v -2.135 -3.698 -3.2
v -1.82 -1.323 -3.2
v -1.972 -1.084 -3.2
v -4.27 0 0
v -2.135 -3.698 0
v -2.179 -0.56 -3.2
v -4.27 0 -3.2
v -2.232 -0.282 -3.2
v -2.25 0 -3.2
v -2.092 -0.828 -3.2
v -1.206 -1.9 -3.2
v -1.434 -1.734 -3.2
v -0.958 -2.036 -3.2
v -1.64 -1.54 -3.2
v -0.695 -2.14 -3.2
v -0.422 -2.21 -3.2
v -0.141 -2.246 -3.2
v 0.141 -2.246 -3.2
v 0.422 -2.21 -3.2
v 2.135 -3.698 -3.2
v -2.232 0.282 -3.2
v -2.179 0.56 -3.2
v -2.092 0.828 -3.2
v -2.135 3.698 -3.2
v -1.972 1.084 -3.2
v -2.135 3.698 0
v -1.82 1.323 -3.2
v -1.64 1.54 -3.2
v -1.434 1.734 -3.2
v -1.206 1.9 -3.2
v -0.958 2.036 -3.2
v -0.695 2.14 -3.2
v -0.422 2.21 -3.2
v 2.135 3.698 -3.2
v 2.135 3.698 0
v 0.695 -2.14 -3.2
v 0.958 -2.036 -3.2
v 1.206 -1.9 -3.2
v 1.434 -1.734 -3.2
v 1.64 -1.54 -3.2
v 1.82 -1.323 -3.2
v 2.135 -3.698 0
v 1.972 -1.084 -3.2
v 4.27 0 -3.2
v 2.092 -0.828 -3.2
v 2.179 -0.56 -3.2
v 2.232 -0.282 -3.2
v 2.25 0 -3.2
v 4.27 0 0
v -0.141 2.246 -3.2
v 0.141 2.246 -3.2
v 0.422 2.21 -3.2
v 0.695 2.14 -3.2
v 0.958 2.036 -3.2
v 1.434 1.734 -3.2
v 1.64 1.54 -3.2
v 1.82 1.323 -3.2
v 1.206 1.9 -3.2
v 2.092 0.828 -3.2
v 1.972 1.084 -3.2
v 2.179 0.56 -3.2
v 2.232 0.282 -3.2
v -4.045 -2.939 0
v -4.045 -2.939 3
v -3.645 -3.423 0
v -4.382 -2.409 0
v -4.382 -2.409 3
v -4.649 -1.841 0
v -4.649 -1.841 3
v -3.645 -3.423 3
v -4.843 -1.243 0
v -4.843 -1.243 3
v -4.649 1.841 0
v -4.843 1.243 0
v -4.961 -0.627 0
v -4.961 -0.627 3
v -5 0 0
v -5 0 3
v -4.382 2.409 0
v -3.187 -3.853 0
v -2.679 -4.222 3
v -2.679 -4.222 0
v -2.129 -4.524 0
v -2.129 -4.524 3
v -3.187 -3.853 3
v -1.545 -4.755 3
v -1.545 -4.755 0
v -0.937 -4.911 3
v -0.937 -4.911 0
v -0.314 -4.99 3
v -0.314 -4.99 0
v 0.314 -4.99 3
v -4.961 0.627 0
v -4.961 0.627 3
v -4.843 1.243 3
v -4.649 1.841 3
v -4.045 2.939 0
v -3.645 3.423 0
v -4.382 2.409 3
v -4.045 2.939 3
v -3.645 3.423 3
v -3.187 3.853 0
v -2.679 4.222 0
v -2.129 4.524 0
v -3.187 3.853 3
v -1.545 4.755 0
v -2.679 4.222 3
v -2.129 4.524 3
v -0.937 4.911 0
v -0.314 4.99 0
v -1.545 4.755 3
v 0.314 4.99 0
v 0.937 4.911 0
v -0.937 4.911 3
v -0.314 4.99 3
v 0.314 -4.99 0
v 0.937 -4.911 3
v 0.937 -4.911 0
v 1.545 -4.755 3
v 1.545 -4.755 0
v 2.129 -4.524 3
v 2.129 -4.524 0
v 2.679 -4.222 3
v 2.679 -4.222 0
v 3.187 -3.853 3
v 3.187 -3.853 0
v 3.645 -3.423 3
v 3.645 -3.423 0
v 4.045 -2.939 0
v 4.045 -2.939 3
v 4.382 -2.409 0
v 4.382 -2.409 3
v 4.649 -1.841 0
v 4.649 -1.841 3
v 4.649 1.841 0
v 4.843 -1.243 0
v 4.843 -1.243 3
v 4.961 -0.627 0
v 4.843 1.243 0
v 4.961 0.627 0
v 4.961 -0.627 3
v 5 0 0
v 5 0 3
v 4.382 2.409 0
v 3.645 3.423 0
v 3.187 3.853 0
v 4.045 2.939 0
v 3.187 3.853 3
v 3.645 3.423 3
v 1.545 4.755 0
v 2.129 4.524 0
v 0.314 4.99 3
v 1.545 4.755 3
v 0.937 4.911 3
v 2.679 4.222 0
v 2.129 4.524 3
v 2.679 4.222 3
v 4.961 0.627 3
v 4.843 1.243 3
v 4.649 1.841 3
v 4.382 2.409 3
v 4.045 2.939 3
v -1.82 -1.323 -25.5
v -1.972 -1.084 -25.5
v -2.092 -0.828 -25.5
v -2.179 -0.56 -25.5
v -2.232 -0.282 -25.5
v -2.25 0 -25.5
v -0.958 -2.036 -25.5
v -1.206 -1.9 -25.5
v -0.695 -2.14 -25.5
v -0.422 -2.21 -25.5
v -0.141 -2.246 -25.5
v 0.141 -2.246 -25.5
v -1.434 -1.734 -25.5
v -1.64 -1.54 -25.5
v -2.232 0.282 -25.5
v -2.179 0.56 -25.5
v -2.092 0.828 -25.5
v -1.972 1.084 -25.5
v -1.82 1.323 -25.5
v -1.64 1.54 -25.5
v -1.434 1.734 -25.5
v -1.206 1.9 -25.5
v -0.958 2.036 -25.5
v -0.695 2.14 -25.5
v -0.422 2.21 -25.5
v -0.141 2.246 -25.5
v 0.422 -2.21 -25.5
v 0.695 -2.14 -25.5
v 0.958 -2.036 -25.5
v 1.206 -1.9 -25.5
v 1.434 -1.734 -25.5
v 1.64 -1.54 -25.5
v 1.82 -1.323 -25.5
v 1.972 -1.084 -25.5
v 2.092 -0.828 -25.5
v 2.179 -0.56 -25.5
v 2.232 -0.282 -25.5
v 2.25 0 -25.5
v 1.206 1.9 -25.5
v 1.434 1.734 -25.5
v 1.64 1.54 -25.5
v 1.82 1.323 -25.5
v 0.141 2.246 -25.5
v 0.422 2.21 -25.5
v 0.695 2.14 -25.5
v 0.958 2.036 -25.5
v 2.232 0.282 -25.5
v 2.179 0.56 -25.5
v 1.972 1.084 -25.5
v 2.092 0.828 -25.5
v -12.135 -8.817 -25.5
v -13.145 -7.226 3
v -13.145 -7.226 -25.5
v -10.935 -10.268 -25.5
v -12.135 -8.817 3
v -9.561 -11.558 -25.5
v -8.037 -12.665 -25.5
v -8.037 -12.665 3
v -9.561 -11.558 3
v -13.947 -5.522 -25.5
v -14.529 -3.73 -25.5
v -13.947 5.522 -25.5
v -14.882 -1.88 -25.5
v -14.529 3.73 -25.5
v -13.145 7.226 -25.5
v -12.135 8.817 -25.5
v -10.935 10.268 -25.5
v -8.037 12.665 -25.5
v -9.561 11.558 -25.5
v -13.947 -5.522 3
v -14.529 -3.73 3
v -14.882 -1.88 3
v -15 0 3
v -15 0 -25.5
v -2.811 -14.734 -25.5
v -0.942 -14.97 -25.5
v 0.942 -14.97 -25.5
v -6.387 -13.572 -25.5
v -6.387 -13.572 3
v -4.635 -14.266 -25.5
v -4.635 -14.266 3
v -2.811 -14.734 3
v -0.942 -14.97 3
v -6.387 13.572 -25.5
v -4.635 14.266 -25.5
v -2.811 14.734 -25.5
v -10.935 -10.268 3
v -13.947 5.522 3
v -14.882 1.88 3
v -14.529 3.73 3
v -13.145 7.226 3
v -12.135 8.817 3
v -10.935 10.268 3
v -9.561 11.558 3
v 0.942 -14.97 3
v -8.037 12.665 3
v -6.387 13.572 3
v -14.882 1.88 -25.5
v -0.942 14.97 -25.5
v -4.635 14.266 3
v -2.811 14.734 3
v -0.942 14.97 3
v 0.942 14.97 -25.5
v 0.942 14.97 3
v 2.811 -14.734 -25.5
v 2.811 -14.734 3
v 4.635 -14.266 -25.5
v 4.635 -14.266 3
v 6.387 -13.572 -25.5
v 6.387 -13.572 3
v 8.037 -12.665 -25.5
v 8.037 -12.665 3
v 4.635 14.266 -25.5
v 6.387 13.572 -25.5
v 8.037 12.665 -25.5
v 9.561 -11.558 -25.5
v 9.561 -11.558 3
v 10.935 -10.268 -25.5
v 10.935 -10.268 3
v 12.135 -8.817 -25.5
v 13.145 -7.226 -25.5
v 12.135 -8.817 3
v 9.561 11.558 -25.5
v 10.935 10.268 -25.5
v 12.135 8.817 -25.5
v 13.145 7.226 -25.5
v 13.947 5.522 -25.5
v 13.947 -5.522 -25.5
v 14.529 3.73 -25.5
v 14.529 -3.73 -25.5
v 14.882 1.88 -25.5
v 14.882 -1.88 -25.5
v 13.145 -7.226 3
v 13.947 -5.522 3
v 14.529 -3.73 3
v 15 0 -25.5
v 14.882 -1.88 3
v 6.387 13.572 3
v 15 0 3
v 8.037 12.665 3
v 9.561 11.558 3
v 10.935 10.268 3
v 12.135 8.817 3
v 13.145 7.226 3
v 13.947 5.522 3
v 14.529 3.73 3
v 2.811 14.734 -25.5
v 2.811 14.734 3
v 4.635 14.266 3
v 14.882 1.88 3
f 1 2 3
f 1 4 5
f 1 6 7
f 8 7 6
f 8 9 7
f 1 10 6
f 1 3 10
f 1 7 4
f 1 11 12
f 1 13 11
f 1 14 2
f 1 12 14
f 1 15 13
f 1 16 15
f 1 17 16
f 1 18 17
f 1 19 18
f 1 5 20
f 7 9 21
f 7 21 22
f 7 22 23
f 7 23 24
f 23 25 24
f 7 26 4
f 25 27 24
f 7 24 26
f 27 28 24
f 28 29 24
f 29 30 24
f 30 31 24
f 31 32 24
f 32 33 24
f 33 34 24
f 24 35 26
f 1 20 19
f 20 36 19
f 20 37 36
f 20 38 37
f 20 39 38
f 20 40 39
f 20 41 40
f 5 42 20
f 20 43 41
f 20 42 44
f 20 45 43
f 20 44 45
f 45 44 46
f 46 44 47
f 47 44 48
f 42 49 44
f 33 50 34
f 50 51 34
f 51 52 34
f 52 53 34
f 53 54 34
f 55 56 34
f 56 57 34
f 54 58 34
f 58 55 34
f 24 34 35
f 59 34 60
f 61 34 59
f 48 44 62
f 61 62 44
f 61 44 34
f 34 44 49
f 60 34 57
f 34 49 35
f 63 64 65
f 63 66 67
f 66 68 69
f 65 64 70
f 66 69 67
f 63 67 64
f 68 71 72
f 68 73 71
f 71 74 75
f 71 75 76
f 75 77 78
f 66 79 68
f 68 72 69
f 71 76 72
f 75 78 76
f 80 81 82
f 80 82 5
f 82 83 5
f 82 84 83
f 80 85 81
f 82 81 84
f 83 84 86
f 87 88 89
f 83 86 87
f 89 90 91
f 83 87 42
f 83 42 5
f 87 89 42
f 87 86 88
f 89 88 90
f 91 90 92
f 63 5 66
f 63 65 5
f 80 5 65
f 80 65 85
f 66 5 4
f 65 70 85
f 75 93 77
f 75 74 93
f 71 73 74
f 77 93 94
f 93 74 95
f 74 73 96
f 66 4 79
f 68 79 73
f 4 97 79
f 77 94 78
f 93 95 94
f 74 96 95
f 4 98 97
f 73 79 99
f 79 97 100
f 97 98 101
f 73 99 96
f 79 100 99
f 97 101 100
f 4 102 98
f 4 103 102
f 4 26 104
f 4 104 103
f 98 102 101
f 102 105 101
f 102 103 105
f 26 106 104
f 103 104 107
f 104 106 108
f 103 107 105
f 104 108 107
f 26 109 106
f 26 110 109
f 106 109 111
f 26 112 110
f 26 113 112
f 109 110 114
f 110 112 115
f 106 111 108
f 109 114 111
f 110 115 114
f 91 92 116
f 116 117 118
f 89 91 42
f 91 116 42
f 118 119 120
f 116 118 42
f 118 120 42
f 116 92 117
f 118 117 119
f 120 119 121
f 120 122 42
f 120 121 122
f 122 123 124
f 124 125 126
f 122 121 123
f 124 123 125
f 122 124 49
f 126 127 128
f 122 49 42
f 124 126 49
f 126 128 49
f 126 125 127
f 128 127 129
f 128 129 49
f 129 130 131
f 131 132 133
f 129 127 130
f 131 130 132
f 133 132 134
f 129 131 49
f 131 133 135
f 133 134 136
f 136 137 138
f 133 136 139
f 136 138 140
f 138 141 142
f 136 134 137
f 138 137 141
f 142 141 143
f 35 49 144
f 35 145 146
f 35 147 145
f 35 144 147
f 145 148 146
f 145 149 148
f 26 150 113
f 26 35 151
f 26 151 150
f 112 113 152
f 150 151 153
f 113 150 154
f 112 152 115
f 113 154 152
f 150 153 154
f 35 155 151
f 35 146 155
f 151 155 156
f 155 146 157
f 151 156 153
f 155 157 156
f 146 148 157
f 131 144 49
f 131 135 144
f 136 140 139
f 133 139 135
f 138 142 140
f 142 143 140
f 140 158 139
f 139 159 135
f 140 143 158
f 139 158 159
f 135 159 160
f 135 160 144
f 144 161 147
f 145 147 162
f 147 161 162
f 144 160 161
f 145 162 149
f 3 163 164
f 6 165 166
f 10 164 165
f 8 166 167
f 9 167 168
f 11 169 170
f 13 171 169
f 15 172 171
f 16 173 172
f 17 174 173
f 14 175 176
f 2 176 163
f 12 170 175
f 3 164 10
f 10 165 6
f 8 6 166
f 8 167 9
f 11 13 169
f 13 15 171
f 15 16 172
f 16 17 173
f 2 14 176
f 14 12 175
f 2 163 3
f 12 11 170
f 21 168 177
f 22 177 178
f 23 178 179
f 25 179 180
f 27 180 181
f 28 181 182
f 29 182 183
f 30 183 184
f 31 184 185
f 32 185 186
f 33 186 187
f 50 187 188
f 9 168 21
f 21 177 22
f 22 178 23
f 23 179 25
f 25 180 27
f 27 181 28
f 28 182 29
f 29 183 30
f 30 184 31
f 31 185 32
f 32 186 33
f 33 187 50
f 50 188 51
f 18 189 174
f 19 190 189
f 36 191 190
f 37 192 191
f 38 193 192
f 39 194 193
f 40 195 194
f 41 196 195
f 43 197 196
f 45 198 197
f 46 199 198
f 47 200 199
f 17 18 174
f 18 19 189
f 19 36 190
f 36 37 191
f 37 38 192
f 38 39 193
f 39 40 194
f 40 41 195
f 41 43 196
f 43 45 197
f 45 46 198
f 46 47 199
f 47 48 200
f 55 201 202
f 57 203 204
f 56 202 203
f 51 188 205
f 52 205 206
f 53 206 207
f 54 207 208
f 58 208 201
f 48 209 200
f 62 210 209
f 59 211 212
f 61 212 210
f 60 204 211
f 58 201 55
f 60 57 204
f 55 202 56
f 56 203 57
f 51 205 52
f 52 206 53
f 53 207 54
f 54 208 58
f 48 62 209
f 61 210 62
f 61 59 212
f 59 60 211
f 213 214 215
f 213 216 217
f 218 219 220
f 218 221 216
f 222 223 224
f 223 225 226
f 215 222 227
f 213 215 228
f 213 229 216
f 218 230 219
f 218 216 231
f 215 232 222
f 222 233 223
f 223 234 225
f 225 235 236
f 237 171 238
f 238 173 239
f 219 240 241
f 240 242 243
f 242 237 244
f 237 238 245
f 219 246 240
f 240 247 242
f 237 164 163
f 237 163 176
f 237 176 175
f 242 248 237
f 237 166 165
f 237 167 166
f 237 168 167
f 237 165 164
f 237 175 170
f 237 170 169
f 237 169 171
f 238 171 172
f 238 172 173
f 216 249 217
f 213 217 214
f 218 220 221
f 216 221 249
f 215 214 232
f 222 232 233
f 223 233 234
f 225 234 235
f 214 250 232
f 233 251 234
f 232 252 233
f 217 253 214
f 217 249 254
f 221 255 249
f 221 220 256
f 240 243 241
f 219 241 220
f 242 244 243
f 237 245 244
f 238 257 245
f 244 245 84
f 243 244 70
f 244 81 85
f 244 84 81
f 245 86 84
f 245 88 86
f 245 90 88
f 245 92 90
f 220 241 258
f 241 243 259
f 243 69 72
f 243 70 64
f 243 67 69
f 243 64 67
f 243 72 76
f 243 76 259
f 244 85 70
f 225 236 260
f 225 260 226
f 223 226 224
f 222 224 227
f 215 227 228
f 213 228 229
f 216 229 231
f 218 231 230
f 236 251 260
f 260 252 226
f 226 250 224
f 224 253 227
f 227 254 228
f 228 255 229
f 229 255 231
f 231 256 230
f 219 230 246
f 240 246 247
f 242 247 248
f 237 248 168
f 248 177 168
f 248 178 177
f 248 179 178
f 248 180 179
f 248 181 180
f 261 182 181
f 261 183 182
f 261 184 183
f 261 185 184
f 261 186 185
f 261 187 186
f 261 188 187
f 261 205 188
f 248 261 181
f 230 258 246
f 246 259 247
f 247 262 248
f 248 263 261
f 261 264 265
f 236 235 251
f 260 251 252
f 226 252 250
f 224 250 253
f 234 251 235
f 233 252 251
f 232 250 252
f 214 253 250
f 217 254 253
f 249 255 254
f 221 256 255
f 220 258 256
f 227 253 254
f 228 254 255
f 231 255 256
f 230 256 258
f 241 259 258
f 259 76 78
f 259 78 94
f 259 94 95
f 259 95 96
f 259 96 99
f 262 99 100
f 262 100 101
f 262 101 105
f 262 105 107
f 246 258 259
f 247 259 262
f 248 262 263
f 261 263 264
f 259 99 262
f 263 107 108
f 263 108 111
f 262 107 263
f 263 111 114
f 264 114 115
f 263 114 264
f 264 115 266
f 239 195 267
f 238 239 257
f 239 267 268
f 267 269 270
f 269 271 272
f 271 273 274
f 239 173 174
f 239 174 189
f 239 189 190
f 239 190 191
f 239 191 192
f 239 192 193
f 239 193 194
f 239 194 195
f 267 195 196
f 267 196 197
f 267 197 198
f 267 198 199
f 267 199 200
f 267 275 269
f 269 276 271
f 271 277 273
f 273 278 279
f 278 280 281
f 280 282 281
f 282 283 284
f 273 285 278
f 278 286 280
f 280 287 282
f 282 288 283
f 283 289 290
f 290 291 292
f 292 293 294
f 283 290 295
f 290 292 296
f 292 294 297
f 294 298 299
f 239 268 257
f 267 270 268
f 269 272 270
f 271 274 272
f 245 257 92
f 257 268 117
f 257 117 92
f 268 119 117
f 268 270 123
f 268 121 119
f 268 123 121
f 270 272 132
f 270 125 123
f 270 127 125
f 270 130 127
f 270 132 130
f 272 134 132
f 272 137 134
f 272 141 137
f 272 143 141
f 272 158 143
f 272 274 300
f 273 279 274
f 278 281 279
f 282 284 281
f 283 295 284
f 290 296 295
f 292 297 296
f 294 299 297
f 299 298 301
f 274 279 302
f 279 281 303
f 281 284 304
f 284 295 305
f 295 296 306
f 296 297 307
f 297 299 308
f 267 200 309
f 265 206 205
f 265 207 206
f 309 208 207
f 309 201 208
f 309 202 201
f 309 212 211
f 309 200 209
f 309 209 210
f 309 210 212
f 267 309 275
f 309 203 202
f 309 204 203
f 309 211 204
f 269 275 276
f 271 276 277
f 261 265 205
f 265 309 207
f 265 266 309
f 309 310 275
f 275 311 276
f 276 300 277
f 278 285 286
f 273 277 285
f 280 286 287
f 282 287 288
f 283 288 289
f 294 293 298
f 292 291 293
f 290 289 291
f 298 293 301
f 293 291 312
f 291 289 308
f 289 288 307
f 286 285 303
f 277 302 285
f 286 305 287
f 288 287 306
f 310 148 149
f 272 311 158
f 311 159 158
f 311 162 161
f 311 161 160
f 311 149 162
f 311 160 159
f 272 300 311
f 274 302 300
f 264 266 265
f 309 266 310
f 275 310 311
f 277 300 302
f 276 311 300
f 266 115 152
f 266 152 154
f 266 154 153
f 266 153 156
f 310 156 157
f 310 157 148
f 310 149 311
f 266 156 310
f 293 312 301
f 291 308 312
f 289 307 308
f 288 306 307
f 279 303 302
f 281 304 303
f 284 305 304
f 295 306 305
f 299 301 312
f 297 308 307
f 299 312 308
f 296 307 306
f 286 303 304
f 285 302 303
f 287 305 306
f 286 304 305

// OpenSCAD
$fn = 50;

difference() {
	union() {
		translate(v = [0, 0, -25.5]) {
			cylinder(h = 28.5, r = 15.0);
		}
	}
	union() {
		translate(v = [0, 0, 0]) {
			rotate(a = [0, 0, 0]) {
				difference() {
					union() {
						translate(v = [0, 0, -3.2]) {
							linear_extrude(height = 3.2) {
								polygon(points = [[4.2698, 0.0], [2.1349000000000005, 3.697755269078796], [-2.134899999999999, 3.6977552690787965], [-4.2698, 5.228996902999369e-16], [-2.134900000000002, -3.6977552690787956], [2.1348999999999974, -3.697755269078798]]);
							}
						}
					}
					union();
				}
			}
		}
		#cylinder(h = 3, r = 5.0);
		#translate(v = [0, 0, -100.0]) {
			cylinder(h = 200, r = 2.25);
		}
	}
}
